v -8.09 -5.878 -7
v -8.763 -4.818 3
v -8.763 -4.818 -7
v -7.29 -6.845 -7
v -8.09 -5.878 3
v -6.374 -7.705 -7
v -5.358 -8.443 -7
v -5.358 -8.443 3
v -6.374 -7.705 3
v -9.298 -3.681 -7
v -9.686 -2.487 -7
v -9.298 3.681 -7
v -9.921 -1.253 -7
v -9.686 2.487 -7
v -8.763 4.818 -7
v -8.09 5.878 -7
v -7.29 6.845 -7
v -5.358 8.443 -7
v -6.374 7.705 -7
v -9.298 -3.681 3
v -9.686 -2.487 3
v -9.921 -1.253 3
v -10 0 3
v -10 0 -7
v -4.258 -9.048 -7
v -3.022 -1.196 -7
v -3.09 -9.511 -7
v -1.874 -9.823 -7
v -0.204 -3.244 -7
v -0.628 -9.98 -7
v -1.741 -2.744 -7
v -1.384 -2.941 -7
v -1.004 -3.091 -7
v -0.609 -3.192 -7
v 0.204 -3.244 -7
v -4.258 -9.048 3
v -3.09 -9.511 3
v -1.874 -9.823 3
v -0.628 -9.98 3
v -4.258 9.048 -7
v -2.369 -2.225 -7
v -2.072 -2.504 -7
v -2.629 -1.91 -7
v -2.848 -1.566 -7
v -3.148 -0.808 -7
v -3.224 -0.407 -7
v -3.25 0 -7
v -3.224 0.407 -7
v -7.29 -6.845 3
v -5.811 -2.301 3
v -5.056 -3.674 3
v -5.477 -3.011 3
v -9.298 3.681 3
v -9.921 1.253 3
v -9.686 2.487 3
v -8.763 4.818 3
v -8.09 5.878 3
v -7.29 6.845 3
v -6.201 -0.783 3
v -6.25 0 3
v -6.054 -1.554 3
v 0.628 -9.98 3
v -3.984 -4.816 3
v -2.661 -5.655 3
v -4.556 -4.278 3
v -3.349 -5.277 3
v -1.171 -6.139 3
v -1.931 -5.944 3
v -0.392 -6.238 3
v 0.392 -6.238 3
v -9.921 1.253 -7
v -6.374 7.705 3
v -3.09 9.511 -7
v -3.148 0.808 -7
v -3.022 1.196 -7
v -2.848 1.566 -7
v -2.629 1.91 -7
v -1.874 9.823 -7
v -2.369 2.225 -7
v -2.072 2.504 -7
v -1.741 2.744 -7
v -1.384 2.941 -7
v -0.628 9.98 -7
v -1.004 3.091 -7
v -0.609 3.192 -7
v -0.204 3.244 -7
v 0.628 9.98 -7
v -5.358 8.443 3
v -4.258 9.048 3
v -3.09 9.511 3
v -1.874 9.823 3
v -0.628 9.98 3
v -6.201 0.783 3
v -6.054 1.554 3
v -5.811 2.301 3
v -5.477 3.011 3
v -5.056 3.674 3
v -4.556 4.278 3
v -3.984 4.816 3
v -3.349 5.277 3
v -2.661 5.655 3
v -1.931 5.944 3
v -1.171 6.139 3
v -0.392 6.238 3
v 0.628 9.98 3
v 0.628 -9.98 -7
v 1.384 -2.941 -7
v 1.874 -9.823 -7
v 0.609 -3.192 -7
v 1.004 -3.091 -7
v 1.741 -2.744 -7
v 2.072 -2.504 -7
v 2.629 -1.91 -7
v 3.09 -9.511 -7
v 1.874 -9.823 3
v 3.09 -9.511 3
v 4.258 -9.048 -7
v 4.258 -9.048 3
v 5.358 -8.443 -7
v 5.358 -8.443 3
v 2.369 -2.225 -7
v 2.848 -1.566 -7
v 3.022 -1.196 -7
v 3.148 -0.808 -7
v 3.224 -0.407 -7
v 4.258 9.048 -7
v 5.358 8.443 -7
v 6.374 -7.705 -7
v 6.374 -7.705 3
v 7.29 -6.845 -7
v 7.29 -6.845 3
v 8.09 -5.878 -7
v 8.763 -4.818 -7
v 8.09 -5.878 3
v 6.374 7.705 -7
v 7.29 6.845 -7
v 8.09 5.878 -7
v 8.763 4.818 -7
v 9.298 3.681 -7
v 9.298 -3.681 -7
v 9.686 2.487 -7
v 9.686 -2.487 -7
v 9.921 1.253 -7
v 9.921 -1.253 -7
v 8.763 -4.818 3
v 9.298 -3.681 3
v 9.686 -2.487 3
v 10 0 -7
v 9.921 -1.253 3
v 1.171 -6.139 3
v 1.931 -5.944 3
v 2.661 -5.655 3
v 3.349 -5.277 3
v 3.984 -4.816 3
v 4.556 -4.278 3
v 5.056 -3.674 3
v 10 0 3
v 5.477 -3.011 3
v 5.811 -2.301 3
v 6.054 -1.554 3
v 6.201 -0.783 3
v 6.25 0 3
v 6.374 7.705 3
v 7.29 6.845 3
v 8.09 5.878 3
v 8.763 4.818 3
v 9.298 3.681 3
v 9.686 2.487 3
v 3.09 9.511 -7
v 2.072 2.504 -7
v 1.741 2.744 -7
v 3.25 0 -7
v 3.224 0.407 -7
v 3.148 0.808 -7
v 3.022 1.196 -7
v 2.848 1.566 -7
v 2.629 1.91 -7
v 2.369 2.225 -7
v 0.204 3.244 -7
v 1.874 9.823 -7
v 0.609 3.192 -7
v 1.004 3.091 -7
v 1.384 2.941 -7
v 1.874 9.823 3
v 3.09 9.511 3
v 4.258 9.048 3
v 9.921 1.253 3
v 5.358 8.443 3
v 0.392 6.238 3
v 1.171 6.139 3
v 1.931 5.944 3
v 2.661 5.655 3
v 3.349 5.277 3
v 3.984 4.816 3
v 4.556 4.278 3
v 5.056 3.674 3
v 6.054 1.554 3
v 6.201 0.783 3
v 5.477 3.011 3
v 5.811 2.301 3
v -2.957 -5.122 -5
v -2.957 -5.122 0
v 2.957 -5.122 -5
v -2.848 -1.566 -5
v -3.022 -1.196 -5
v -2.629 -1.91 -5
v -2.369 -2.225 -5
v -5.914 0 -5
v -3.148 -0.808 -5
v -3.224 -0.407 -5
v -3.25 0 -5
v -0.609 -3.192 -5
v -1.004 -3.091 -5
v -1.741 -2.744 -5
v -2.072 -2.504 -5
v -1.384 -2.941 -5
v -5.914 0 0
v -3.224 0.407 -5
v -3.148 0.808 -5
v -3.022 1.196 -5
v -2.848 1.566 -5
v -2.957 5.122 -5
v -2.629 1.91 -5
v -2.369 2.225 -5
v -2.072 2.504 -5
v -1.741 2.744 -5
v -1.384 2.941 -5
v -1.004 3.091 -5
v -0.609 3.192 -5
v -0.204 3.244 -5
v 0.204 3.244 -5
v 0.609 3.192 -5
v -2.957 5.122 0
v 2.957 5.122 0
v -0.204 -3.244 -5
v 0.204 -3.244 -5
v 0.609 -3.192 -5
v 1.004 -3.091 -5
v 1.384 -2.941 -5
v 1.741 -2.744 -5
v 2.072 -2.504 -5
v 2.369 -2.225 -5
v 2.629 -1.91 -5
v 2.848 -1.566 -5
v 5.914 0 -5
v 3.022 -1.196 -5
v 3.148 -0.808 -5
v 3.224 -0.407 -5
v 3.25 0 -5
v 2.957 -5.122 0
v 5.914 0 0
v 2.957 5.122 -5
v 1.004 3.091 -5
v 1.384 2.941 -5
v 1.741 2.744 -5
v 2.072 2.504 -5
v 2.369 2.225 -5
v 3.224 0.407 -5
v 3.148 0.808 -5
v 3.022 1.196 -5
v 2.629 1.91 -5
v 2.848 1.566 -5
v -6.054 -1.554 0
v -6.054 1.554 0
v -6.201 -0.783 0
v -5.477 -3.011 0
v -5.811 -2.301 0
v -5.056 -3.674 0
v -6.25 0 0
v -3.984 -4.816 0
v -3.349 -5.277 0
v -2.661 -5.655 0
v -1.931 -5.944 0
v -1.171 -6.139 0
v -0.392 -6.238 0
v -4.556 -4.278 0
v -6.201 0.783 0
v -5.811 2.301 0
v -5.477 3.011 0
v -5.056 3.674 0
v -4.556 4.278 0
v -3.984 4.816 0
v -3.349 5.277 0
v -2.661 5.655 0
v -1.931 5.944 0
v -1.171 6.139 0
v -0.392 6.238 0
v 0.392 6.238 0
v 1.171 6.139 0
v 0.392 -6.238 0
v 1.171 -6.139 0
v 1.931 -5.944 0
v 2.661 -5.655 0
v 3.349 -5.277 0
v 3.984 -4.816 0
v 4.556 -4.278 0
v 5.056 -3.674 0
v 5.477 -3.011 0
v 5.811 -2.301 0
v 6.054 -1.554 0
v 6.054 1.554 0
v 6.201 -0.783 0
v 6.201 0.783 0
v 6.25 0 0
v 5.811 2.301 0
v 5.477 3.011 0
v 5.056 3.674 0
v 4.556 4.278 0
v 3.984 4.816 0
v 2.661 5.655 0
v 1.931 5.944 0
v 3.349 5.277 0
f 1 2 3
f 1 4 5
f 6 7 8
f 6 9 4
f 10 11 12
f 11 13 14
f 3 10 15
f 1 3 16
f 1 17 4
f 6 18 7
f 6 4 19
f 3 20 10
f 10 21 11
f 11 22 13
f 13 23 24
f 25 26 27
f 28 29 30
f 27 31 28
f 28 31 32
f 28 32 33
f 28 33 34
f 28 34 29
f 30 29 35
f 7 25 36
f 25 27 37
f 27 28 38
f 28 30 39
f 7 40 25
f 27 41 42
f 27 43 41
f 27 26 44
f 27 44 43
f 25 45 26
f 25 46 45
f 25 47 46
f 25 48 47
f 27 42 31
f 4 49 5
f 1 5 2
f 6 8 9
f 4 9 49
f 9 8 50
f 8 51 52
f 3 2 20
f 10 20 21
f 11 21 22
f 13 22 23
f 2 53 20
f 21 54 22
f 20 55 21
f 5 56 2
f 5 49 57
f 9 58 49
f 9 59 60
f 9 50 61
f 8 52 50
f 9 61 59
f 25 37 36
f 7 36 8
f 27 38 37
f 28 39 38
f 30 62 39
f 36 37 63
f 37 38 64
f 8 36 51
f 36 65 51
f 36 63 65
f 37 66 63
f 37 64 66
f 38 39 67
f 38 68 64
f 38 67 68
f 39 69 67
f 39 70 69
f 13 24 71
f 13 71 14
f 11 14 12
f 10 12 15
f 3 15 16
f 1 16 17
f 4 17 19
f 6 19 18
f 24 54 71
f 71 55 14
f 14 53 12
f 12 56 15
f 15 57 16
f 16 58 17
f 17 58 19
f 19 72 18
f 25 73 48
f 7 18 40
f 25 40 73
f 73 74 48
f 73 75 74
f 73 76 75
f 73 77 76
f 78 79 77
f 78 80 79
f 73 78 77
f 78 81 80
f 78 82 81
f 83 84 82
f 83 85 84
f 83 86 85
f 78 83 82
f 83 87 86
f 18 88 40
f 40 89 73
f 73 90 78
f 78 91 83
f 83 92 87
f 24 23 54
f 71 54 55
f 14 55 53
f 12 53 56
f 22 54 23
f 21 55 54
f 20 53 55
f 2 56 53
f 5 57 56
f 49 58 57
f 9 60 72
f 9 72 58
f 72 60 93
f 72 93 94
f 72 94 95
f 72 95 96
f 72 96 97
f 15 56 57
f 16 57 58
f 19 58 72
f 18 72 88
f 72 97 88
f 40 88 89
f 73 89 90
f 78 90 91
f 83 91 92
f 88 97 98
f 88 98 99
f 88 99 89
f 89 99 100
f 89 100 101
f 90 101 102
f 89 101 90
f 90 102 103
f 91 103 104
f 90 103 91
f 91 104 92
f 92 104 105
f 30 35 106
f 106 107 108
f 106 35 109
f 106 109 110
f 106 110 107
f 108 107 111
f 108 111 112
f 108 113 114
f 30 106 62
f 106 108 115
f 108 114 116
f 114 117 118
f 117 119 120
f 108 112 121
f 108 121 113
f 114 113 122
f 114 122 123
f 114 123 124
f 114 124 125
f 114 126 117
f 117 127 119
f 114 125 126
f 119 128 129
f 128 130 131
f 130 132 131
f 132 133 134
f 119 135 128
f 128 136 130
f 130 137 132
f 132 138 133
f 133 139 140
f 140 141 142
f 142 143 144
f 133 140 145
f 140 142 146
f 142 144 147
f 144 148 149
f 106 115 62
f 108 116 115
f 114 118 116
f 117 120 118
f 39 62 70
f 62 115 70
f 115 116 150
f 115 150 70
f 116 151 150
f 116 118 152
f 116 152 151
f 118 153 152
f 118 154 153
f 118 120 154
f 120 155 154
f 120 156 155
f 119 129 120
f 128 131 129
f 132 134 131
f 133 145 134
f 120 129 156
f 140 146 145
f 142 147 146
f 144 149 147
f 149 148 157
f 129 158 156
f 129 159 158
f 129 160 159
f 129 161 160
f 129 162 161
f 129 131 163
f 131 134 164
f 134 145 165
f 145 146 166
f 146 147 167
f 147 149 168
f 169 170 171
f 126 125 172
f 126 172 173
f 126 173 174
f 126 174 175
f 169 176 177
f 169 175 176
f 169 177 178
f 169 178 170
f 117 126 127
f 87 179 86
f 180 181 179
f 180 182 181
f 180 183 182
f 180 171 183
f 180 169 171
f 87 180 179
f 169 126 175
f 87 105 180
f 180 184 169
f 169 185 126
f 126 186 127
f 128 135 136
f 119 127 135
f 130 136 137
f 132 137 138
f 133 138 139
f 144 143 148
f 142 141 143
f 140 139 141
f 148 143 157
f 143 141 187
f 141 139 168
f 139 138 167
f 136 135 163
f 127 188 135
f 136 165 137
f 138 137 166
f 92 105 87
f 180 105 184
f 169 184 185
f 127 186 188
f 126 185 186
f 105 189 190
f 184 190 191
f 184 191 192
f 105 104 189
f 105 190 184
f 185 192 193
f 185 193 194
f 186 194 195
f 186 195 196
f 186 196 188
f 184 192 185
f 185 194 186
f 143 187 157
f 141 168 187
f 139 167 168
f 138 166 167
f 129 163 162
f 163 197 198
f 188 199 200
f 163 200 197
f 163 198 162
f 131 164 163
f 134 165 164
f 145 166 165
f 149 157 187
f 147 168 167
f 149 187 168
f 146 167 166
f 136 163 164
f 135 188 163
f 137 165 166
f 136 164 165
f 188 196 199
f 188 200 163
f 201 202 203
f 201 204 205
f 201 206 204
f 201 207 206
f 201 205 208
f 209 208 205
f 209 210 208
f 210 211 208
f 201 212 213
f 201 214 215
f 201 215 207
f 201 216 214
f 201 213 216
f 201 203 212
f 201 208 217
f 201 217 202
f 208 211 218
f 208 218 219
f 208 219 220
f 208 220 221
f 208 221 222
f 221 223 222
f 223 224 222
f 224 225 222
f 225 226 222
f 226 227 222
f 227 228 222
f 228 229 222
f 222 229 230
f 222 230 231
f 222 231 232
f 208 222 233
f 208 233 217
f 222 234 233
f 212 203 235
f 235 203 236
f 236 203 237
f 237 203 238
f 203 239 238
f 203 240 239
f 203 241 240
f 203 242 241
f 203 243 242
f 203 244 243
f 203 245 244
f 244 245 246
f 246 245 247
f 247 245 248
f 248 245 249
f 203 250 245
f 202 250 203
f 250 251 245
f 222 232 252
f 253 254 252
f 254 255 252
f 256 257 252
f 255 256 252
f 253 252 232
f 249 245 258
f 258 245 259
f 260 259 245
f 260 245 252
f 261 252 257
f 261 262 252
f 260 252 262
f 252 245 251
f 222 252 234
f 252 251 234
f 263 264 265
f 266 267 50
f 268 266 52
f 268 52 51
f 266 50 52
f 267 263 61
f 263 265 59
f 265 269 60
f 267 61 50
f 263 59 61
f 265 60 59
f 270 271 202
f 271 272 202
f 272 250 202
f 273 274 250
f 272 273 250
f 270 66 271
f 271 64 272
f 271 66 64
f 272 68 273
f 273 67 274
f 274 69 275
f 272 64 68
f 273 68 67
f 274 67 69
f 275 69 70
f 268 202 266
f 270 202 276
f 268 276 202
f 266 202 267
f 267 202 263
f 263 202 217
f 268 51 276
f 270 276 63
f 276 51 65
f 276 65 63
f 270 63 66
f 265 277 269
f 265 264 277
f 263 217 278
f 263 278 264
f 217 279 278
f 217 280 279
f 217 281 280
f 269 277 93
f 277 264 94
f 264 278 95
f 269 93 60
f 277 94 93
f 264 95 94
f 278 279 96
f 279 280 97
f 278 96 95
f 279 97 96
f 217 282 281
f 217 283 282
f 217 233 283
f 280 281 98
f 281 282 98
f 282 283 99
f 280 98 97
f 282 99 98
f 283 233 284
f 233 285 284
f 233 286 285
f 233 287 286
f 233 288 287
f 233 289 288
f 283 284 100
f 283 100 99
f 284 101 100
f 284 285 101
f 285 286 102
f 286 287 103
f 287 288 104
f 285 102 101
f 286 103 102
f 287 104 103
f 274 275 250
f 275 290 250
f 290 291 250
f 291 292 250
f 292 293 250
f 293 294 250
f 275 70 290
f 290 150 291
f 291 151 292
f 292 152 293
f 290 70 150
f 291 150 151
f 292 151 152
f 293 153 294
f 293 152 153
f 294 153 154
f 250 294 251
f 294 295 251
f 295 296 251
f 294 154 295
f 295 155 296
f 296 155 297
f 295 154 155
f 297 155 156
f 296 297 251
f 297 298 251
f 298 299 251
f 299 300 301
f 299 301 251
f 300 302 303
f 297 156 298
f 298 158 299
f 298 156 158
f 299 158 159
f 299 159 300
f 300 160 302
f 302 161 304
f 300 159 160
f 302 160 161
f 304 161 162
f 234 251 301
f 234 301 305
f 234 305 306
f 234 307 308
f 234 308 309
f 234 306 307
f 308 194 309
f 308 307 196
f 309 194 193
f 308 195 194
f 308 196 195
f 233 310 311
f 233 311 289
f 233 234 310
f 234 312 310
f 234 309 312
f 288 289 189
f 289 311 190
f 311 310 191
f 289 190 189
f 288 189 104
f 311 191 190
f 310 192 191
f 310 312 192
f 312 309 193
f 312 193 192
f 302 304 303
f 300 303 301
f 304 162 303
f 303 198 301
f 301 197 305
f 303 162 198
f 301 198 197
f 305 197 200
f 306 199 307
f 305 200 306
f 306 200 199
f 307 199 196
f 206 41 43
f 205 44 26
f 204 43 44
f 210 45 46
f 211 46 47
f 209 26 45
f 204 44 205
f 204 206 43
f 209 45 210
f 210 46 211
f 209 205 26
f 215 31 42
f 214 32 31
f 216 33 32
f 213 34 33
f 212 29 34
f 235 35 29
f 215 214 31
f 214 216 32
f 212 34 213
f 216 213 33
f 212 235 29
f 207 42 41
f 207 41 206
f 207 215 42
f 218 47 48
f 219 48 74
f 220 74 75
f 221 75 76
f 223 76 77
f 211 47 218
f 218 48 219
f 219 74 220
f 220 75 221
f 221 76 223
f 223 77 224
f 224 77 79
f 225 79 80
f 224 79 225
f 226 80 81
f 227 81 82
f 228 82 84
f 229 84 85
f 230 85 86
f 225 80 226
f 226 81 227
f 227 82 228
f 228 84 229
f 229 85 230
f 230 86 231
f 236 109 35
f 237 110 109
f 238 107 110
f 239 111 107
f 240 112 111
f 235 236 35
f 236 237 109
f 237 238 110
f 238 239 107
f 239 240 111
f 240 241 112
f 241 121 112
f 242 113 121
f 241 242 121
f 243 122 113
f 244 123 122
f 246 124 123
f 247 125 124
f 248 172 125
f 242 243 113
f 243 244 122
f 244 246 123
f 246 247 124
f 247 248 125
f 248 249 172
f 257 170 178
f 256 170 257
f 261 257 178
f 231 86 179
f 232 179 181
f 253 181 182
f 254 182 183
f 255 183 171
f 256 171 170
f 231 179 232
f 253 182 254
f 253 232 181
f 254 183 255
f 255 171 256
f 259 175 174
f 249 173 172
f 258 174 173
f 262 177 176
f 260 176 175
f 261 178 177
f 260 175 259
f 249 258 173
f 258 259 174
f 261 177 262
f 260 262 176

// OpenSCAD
$fn = 50;

difference() {
	union() {
		translate(v = [0, 0, -7.0]) {
			cylinder(h = 10.0, r = 10.0);
		}
		#translate(v = [0, 0, -8.5]) {
			cylinder(h = 8.5, r = 2.875);
		}
	}
	union() {
		translate(v = [0, 0, 0]) {
			rotate(a = [0, 0, 0]) {
				difference() {
					union() {
						translate(v = [0, 0, -5]) {
							linear_extrude(height = 5) {
								polygon(points = [[5.914249999999999, 0.0], [2.957125, 5.1218907443321156], [-2.9571249999999982, 5.1218907443321156], [-5.914249999999999, 7.242867331857232e-16], [-2.9571250000000022, -5.121890744332115], [2.9571249999999956, -5.121890744332118]]);
							}
						}
					}
					union();
				}
			}
		}
		#cylinder(h = 3, r = 6.25);
		#translate(v = [0, 0, -100.0]) {
			cylinder(h = 200, r = 3.25);
		}
	}
}
